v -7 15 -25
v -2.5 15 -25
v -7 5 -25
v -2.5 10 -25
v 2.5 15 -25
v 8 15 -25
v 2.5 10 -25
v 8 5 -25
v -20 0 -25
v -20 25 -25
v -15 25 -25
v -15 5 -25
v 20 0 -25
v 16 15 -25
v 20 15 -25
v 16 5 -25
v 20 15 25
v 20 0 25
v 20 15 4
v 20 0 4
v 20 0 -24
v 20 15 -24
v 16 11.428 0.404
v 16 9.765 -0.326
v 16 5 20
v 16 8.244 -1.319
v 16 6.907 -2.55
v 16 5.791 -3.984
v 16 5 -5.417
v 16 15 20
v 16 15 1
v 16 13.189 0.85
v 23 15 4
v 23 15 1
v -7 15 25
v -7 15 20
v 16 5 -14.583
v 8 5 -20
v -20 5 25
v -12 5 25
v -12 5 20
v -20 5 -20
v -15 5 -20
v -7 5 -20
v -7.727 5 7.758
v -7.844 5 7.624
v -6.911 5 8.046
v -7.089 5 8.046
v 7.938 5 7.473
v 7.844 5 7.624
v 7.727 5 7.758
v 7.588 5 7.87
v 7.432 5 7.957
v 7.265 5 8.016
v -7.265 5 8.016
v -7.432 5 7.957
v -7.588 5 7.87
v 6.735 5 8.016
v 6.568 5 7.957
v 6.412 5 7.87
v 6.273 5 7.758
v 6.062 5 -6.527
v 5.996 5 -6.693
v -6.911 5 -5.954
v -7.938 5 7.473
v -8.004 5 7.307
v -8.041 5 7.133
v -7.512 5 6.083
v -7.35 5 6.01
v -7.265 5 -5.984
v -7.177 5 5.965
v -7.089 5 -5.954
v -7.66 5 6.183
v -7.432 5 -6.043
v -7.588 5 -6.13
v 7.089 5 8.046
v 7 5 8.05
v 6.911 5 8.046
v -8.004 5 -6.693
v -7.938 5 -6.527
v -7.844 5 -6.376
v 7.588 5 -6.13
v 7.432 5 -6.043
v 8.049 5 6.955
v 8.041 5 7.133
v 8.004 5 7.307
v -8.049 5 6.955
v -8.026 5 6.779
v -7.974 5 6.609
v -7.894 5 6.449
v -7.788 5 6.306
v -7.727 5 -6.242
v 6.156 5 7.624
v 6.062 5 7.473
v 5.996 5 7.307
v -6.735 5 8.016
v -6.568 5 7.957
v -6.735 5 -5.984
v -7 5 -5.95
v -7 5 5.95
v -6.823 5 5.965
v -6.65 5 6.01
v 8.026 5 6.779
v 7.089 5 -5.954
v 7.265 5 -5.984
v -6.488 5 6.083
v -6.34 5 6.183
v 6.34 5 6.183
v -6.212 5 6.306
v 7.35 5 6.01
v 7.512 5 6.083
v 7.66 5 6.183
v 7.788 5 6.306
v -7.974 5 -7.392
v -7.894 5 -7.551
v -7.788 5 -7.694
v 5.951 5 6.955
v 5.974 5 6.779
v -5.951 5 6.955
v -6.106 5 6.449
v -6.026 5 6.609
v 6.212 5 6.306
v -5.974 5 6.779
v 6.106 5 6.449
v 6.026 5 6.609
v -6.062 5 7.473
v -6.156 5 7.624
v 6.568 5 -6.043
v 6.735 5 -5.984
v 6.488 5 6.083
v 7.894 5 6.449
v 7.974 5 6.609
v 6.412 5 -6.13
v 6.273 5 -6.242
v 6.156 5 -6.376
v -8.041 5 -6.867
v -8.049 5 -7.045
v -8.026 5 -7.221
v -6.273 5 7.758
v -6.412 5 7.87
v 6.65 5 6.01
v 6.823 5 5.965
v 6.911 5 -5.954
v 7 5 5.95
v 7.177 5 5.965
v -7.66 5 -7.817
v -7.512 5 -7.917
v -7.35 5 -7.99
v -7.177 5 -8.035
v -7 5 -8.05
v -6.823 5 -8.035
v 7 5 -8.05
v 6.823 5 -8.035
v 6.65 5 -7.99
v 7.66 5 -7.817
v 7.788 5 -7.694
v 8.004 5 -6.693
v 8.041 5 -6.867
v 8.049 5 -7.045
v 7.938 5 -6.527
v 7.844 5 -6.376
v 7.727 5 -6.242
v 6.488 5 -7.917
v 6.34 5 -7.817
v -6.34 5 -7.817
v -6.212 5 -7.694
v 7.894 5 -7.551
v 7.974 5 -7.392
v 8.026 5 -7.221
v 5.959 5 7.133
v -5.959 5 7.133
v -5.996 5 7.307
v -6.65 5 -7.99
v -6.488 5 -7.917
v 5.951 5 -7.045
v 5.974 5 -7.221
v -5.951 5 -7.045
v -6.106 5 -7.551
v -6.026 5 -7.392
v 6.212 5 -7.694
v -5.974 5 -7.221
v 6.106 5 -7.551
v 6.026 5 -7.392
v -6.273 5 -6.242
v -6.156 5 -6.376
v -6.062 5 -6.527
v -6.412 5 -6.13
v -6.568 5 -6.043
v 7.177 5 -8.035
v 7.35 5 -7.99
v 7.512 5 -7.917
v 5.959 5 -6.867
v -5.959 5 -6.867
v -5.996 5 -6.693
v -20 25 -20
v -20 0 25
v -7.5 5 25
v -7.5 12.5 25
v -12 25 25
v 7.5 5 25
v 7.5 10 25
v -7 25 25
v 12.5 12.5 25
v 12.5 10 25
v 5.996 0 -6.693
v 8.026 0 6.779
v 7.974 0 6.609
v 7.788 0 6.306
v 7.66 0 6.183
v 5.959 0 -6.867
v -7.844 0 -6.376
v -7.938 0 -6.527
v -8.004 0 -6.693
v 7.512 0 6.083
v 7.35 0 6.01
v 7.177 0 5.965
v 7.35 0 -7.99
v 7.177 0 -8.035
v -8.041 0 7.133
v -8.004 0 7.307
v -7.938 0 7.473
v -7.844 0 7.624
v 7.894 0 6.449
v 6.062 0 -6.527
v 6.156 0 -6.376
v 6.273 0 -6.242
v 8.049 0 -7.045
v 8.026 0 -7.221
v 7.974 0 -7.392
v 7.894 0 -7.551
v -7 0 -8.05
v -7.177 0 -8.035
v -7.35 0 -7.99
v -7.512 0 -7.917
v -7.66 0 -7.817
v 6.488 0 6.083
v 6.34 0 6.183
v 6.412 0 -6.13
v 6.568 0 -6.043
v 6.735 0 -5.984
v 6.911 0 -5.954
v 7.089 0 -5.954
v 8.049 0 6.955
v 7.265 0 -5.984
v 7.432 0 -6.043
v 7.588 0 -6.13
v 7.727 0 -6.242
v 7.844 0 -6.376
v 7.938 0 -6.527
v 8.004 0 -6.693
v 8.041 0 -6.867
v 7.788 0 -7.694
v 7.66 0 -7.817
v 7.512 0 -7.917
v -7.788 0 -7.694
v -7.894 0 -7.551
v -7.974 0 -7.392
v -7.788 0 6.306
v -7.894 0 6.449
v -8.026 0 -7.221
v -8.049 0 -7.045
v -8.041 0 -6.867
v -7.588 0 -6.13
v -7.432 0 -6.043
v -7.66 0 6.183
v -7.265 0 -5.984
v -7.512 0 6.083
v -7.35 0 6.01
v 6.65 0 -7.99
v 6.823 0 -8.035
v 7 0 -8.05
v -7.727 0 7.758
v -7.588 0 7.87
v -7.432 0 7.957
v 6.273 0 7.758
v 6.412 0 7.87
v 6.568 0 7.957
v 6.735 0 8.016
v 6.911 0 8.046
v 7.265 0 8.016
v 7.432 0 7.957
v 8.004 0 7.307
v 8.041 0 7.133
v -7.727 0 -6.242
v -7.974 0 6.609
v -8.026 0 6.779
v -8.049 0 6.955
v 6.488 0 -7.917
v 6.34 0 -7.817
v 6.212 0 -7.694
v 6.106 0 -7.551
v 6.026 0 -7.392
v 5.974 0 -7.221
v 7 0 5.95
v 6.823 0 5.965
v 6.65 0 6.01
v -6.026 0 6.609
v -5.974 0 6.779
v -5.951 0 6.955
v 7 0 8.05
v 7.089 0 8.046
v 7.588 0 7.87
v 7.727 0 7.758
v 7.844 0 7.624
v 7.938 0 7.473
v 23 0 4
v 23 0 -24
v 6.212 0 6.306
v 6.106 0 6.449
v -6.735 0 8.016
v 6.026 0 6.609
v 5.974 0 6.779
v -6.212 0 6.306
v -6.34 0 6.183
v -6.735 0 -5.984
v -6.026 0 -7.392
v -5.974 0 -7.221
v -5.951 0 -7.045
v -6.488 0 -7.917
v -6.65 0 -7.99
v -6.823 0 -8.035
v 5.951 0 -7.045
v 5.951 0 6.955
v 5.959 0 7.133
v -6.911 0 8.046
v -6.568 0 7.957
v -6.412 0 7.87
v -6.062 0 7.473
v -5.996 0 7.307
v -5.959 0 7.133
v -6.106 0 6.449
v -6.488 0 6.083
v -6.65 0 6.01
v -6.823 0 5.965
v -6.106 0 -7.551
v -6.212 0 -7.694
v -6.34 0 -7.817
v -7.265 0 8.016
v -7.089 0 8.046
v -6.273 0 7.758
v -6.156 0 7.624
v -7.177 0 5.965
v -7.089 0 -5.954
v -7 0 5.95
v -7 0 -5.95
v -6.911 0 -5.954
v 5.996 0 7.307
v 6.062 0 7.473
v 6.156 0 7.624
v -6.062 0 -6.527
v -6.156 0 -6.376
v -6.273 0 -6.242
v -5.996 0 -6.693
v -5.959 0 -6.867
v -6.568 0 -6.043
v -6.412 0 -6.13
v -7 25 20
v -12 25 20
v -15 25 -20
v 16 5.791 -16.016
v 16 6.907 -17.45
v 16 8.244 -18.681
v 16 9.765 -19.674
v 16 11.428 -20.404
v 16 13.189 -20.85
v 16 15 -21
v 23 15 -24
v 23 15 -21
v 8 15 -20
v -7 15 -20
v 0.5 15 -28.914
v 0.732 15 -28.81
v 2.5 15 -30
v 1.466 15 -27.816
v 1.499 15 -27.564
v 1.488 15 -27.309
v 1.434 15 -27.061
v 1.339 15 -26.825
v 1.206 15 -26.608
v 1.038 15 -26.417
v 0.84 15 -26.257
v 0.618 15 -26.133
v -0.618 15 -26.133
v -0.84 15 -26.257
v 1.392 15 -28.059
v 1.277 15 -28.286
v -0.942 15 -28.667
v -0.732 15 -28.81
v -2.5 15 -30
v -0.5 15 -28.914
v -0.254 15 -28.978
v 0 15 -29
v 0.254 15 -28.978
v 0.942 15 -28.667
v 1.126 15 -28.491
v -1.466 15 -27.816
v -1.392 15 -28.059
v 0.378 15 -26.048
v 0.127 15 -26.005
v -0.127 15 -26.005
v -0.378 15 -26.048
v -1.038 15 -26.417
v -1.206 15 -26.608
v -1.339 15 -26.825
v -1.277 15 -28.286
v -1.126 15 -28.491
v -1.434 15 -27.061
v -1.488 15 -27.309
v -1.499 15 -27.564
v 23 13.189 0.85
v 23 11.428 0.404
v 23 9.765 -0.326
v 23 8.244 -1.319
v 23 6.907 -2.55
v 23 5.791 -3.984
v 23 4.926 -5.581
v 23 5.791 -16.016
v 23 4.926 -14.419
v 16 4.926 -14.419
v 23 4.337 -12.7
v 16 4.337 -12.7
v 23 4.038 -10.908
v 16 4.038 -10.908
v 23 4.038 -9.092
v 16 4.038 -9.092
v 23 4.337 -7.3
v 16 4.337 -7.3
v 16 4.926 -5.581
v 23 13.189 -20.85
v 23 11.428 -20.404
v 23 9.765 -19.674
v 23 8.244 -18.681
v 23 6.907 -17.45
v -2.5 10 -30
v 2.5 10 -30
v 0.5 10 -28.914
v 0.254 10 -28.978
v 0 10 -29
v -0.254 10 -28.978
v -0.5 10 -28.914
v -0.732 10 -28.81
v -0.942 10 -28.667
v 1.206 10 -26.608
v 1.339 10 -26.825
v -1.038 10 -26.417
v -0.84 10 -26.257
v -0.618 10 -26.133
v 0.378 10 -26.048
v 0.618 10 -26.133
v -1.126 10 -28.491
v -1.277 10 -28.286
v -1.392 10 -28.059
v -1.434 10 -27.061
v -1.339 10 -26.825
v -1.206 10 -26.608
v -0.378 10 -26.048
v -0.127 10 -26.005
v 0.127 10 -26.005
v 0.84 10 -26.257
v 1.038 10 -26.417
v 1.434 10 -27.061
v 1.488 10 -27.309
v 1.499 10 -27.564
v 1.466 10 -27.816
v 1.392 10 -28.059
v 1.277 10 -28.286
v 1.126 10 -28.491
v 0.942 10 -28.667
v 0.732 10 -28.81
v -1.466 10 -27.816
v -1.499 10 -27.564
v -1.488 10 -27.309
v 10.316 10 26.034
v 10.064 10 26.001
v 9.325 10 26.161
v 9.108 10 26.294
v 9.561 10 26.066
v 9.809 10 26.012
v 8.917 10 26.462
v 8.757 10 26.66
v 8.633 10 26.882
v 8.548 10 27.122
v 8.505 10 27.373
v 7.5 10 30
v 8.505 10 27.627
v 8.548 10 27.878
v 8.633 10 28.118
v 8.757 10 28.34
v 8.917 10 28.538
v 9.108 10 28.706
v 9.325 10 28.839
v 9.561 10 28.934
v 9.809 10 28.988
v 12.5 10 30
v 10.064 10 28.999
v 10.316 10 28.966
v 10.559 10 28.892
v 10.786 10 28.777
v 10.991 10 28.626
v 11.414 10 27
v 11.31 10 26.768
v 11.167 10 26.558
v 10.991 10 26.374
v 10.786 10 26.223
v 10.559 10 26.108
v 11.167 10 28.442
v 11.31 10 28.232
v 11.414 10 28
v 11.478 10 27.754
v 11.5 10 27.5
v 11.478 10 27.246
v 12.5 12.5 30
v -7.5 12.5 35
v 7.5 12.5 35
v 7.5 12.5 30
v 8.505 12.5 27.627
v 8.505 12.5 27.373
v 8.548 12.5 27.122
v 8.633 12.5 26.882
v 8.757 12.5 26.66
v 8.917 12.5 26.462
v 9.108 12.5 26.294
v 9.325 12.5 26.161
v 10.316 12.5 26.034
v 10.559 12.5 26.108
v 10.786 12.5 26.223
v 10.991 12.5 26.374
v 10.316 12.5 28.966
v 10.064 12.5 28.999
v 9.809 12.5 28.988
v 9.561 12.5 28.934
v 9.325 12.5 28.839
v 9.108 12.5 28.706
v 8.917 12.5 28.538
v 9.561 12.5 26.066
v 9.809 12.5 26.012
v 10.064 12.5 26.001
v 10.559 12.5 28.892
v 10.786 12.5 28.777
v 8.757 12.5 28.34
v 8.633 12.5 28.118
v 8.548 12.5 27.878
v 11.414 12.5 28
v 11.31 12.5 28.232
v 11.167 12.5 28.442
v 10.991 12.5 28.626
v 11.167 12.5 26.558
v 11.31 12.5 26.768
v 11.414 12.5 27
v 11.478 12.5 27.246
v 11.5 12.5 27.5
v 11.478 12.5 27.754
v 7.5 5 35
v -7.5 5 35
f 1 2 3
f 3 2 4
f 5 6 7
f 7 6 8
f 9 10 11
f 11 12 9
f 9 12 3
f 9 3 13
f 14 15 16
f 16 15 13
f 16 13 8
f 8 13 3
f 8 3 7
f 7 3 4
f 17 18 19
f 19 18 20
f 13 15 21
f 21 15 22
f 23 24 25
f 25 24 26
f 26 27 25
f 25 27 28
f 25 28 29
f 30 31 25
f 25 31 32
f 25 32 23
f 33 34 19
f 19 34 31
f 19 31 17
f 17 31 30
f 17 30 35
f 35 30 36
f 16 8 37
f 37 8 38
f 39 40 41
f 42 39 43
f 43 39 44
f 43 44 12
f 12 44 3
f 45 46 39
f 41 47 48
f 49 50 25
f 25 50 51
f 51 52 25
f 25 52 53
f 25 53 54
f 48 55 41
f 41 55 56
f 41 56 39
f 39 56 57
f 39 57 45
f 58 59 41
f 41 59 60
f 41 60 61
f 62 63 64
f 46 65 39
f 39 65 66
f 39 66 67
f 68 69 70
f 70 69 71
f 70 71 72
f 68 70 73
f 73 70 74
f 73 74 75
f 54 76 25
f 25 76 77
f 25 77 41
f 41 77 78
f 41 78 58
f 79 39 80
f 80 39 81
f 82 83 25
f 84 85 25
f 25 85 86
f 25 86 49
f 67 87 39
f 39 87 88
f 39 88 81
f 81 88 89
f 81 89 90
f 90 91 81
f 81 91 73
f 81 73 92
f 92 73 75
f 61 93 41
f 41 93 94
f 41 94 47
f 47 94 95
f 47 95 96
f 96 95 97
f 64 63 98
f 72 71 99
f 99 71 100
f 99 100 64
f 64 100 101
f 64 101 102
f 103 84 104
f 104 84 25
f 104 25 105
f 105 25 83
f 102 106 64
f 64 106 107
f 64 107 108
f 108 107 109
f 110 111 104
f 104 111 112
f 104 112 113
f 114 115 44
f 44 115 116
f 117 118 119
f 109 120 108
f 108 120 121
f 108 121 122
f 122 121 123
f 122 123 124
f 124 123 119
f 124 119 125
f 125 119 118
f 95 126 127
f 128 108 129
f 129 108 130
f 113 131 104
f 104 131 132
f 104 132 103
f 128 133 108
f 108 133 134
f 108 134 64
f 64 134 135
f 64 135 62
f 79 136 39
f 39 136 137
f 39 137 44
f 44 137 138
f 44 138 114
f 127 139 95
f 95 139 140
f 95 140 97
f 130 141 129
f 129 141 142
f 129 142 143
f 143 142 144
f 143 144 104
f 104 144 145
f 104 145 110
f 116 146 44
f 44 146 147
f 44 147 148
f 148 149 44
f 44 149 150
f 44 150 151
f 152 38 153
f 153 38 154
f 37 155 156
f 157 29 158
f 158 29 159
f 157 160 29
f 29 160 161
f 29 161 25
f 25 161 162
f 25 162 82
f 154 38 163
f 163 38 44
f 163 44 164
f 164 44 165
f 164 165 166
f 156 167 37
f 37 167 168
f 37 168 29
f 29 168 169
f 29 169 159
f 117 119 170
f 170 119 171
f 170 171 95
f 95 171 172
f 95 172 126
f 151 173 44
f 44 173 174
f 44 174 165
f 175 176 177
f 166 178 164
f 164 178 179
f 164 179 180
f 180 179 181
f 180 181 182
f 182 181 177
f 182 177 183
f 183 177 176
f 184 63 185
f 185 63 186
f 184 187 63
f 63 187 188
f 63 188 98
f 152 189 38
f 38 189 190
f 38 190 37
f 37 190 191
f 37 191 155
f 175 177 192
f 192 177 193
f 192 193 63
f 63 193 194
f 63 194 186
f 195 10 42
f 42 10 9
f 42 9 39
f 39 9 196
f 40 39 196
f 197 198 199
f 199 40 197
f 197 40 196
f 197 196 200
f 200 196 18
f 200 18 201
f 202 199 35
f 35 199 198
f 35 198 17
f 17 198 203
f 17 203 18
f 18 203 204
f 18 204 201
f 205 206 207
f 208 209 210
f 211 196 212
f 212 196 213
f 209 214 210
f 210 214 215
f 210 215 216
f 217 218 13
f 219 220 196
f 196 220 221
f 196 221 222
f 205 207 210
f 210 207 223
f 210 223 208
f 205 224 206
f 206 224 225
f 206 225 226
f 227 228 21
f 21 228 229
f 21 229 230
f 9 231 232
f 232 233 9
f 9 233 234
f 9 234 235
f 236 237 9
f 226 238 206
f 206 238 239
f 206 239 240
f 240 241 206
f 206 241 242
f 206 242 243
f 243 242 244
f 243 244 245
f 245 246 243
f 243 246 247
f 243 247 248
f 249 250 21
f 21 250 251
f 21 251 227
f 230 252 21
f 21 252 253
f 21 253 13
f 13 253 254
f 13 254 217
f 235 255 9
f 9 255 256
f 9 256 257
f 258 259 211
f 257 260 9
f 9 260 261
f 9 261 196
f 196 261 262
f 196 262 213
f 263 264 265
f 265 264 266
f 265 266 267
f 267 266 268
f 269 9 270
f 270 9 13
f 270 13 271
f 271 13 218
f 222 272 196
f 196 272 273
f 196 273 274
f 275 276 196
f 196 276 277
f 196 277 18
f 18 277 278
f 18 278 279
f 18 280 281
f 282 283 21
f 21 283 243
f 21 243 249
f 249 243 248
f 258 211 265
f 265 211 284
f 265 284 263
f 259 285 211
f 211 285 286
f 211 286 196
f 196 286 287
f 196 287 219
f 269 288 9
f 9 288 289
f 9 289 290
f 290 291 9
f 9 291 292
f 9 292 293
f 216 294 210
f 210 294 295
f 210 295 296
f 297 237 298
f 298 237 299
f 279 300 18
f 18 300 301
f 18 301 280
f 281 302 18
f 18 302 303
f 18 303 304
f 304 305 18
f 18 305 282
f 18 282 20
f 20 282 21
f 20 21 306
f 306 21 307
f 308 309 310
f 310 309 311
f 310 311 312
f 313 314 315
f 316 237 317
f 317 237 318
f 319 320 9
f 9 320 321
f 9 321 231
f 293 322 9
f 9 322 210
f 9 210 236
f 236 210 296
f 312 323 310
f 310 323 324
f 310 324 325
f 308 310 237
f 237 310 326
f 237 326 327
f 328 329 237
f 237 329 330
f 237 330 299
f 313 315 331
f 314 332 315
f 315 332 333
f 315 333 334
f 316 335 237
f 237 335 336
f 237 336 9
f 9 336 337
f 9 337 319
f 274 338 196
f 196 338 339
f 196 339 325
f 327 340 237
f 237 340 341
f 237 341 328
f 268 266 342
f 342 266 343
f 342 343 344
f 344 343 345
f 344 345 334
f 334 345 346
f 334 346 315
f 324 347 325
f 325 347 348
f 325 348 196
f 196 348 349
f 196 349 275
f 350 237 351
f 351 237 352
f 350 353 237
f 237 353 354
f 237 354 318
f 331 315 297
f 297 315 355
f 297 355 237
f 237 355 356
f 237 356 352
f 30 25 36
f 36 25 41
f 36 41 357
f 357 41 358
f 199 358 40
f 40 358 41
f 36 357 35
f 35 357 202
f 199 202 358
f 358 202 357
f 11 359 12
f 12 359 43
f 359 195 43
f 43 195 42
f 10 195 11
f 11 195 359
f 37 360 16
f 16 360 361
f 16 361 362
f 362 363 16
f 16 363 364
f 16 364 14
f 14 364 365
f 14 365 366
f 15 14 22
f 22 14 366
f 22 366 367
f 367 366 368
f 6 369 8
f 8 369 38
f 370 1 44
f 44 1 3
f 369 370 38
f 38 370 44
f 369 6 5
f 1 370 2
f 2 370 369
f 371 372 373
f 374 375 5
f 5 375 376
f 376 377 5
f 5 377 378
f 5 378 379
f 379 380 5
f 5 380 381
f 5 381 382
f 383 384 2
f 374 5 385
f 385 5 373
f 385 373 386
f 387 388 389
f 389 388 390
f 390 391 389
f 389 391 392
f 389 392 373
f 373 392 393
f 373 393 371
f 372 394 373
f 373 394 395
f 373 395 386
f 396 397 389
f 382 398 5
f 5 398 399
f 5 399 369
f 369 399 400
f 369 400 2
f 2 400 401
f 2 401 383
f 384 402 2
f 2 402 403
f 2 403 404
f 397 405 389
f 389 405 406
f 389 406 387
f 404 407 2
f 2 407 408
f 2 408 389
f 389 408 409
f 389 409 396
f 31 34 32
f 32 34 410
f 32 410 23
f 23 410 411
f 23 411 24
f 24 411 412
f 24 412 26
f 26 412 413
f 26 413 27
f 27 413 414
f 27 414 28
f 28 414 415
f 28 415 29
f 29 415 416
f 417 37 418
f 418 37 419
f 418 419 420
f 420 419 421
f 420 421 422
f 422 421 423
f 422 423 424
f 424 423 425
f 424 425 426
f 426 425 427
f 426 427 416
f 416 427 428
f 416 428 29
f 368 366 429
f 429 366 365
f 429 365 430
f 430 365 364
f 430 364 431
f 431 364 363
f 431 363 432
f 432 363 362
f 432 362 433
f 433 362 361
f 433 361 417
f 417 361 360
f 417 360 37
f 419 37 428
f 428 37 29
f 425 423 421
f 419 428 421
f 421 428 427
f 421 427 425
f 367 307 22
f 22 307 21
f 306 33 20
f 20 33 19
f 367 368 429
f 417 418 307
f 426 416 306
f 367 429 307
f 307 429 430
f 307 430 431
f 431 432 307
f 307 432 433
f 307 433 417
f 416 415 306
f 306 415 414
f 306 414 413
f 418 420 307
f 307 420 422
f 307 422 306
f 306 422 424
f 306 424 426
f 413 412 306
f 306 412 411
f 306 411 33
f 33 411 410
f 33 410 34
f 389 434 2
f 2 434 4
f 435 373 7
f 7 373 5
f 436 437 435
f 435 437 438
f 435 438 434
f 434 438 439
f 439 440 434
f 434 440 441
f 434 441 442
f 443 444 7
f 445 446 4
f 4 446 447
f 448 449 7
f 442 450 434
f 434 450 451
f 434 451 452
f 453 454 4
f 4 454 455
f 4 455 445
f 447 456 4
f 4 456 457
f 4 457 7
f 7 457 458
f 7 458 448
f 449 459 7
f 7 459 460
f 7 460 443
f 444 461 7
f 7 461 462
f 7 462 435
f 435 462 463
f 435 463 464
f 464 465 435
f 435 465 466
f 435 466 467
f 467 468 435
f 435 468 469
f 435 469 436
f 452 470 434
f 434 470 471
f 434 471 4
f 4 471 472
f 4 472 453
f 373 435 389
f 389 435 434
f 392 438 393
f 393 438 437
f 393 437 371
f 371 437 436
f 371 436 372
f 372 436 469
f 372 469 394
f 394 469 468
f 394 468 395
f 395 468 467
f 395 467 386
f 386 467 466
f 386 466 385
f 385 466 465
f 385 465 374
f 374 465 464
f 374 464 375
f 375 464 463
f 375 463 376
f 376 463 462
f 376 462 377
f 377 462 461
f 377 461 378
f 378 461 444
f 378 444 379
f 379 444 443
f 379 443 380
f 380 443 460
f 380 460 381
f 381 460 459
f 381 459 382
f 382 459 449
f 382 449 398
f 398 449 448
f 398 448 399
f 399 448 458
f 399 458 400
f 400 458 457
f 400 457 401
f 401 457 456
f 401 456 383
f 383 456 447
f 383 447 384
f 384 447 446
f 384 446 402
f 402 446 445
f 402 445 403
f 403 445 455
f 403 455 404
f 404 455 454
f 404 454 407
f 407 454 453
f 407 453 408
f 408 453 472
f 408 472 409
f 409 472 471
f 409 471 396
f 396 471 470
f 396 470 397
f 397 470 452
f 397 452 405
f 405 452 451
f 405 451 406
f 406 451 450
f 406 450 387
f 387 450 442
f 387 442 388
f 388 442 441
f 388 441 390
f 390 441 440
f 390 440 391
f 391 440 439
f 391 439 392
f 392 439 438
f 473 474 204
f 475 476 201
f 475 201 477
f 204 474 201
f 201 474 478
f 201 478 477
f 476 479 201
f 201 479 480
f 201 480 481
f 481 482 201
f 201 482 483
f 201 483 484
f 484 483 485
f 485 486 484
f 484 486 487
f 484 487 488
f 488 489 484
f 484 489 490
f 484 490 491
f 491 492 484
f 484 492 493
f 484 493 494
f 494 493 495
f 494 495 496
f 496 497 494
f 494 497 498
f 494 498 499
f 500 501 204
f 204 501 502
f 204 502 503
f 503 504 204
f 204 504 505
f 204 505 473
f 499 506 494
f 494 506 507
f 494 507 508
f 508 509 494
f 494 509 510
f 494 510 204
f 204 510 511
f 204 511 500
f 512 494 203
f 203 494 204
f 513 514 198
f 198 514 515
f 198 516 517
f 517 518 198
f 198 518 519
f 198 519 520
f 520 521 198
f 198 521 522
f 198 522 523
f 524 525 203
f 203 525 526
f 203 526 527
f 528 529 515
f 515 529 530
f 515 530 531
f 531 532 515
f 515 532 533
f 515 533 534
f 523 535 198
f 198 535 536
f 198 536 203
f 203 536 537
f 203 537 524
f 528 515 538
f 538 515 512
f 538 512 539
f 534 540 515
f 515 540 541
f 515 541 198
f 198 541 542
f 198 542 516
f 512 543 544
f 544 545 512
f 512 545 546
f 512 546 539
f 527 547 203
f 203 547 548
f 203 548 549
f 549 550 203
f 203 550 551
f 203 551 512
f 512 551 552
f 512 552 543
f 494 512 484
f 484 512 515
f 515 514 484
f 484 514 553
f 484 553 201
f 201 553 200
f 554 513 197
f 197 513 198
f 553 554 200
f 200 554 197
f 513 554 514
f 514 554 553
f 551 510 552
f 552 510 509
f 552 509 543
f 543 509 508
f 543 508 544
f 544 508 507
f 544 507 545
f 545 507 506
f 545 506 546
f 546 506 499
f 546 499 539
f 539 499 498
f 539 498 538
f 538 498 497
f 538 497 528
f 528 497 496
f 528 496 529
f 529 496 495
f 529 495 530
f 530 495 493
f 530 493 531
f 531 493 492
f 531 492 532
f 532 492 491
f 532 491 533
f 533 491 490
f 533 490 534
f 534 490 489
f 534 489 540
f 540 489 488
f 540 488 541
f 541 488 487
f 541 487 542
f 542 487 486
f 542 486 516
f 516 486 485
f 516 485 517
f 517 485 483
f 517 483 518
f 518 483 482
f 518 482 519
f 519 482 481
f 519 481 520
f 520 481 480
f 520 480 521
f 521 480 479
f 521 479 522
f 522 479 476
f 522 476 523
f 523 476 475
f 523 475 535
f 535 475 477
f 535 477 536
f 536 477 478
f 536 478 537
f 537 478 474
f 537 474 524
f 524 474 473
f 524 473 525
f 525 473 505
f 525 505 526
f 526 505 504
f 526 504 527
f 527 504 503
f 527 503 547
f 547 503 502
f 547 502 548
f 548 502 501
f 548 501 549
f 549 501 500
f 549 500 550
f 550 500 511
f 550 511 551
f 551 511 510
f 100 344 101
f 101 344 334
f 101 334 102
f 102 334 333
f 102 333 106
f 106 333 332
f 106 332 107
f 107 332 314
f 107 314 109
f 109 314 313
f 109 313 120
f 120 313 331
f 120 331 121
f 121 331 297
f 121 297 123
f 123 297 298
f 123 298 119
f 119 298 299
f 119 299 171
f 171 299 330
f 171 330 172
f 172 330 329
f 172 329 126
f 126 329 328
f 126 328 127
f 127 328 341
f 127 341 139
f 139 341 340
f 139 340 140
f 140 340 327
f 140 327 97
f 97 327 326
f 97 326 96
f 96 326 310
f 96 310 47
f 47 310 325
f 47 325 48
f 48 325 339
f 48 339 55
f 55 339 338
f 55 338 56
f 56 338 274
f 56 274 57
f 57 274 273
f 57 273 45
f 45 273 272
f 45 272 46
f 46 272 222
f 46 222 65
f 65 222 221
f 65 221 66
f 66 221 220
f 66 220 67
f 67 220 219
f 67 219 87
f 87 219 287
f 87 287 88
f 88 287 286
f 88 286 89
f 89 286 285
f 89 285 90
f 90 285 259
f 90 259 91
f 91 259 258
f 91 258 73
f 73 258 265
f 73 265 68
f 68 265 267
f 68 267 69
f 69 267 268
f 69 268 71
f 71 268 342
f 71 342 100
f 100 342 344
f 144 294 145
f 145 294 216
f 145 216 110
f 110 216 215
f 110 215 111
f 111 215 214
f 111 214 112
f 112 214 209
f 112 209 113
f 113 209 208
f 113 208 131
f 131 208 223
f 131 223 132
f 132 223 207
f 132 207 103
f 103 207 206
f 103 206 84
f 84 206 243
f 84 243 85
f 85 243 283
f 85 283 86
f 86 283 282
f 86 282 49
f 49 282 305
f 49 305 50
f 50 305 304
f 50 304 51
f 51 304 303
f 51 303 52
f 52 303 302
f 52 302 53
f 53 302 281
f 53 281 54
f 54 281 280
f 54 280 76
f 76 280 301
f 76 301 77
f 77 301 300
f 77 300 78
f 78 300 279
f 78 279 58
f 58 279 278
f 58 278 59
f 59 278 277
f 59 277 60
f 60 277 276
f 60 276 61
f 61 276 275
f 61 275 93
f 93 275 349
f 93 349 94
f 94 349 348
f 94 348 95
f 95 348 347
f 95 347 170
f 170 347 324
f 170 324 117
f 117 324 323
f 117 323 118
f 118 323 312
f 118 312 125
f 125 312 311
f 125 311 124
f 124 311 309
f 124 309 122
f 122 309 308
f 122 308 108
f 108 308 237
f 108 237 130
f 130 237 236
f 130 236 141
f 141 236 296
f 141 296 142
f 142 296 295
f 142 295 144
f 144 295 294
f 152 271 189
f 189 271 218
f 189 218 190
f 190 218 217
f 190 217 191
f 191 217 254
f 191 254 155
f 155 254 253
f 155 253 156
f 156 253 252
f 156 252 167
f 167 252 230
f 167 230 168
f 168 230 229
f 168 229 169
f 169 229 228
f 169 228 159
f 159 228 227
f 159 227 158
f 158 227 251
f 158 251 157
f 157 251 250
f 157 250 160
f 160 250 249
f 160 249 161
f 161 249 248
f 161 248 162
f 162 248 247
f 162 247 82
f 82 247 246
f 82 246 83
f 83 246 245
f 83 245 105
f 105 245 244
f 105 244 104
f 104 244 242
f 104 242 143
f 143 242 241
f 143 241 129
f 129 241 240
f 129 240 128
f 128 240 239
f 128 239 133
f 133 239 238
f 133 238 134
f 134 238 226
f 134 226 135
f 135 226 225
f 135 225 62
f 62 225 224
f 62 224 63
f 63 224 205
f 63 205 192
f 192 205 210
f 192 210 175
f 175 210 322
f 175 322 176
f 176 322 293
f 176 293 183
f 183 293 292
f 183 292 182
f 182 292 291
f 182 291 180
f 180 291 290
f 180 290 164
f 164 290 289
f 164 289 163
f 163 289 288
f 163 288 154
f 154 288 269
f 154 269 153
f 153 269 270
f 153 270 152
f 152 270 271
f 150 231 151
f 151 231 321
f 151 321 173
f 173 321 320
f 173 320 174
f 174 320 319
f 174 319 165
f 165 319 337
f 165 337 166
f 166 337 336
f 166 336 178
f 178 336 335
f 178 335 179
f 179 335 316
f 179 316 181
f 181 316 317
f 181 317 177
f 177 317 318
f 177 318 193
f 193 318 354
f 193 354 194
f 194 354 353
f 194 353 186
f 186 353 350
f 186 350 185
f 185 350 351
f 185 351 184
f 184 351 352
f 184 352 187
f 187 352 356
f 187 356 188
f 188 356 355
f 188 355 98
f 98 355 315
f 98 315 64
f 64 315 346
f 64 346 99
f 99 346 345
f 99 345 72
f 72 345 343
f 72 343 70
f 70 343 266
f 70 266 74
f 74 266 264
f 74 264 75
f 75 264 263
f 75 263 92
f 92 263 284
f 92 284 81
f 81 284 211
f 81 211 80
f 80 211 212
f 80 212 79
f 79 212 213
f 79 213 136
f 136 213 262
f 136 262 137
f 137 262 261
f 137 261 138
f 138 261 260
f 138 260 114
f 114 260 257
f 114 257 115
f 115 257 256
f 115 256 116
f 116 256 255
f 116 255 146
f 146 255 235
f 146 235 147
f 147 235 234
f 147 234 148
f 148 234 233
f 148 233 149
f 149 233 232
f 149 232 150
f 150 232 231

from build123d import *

# Parameters (mm, degrees)
SKETCH1_W            = 40
SKETCH1_H            = 50
BOSS_EXTRUDE1_DEPTH  = 5
SKETCH4_W            = 5
SKETCH4_H            = 5
BOSS_EXTRUDE4_DEPTH  = 20
SKETCH4_4_W          = 15
SKETCH4_4_H          = 5
BOSS_EXTRUDE5_DEPTH  = 10
CUT_EXTRUDE2_DEPTH   = 4
BOSS_EXTRUDE7_START  = 3
BOSS_EXTRUDE7_DEPTH  = 3
SKETCH11_W           = 5
SKETCH11_H           = 5
BOSS_EXTRUDE8_DEPTH  = 5
SKETCH12_R           = 1.5
CUT_EXTRUDE6_DEPTH   = 5
SKETCH15_W           = 5
SKETCH15_H           = 2.5
BOSS_EXTRUDE11_DEPTH = 5
BOSS_EXTRUDE12_DEPTH = 10
SKETCH16_R           = 1.5
CUT_EXTRUDE8_DEPTH   = 2.5
SKETCH18_R           = 1.05
CUT_EXTRUDE9_DEPTH   = 5


with BuildPart() as part:
    # Sketch1 → Boss-Extrude1 (new body)
    with BuildSketch(Plane(origin=(0, 0, 0), x_dir=(1, 0, 0), z_dir=(0, 1, 0))):
        Rectangle(SKETCH1_W, SKETCH1_H)
    extrude(amount=BOSS_EXTRUDE1_DEPTH)

    # Sketch4 → Boss-Extrude4 (add)
    with BuildSketch(Plane(origin=(0, 5, 0), x_dir=(1, 0, 0), z_dir=(0, 1, 0))):
        with Locations((-9.5, -22.5)):
            Rectangle(SKETCH4_W, SKETCH4_H)
        with Locations((-17.5, 22.5)):
            Rectangle(SKETCH4_W, SKETCH4_H)
    extrude(amount=BOSS_EXTRUDE4_DEPTH)

    # Sketch4<4> → Boss-Extrude5 (add)
    with BuildSketch(Plane(origin=(0, 5, 0), x_dir=(1, 0, 0), z_dir=(0, 1, 0))):
        Polygon((20, -25), (20, 25), (16, 25), (16, -20), (-7, -20), (-7, -25), align=None)
        with Locations((0.5, 22.5)):
            Rectangle(SKETCH4_4_W, SKETCH4_4_H)
    extrude(amount=BOSS_EXTRUDE5_DEPTH)

    # Sketch7 → Cut-Extrude2 (cut)
    with BuildSketch(Plane(origin=(20, 0, 0), x_dir=(0, 0, -1), z_dir=(1, 0, 0))):
        with BuildLine():
            Line((-1, 15), (21, 15))
            ThreePointArc((21, 15), (10, 4), (-1, 15))
        make_face()
    extrude(amount=-CUT_EXTRUDE2_DEPTH, mode=Mode.SUBTRACT)

    # Sketch8 → Boss-Extrude7 (add)
    with BuildSketch(Plane(origin=(20, 0, 0), x_dir=(0, 0, -1), z_dir=(1, 0, 0)).offset(BOSS_EXTRUDE7_START)):
        with BuildLine():
            Line((-1, 15), (-4, 15))
            Line((-4, 15), (-4, 0))
            Line((-4, 0), (24, 0))
            Line((24, 0), (24, 15))
            Line((24, 15), (21, 15))
            ThreePointArc((21, 15), (10, 4), (-1, 15))
        make_face()
    extrude(amount=-BOSS_EXTRUDE7_DEPTH)

    # Sketch11 → Boss-Extrude8 (add)
    with BuildSketch(Plane(origin=(0, 0, -25), x_dir=(-1, 0, 0), z_dir=(0, 0, -1))):
        with Locations((0, 12.5)):
            Rectangle(SKETCH11_W, SKETCH11_H)
    extrude(amount=BOSS_EXTRUDE8_DEPTH)

    # Sketch12 → Cut-Extrude6 (cut)
    with BuildSketch(Plane.XZ.offset(-10)):
        with Locations((0, -27.5)):
            Circle(SKETCH12_R)
    extrude(amount=-CUT_EXTRUDE6_DEPTH, mode=Mode.SUBTRACT)

    # Sketch15 → Boss-Extrude11 (add)
    with BuildSketch(Plane.XY.offset(25)):
        with Locations((10, 11.25)):
            Rectangle(SKETCH15_W, SKETCH15_H)
    extrude(amount=BOSS_EXTRUDE11_DEPTH)

    # Sketch15<3> → Boss-Extrude12 (add)
    with BuildSketch(Plane.XY.offset(25)):
        Polygon((7.5, 10), (7.5, 12.5), (-7.5, 12.5), (-7.5, 5), (7.5, 5), align=None)
    extrude(amount=BOSS_EXTRUDE12_DEPTH)

    # Sketch16 → Cut-Extrude8 (cut)
    with BuildSketch(Plane.XZ.offset(-10)):
        with Locations((10, 27.5)):
            Circle(SKETCH16_R)
    extrude(amount=-CUT_EXTRUDE8_DEPTH, mode=Mode.SUBTRACT)

    # Sketch18 → Cut-Extrude9 (cut)
    with BuildSketch(Plane.XZ):
        with Locations((-7, 7)):
            Circle(SKETCH18_R)
        with Locations((7, 7)):
            Circle(SKETCH18_R)
        with Locations((7, -7)):
            Circle(SKETCH18_R)
        with Locations((-7, -7)):
            Circle(SKETCH18_R)
    extrude(amount=-CUT_EXTRUDE9_DEPTH, mode=Mode.SUBTRACT)


solid = part.part
